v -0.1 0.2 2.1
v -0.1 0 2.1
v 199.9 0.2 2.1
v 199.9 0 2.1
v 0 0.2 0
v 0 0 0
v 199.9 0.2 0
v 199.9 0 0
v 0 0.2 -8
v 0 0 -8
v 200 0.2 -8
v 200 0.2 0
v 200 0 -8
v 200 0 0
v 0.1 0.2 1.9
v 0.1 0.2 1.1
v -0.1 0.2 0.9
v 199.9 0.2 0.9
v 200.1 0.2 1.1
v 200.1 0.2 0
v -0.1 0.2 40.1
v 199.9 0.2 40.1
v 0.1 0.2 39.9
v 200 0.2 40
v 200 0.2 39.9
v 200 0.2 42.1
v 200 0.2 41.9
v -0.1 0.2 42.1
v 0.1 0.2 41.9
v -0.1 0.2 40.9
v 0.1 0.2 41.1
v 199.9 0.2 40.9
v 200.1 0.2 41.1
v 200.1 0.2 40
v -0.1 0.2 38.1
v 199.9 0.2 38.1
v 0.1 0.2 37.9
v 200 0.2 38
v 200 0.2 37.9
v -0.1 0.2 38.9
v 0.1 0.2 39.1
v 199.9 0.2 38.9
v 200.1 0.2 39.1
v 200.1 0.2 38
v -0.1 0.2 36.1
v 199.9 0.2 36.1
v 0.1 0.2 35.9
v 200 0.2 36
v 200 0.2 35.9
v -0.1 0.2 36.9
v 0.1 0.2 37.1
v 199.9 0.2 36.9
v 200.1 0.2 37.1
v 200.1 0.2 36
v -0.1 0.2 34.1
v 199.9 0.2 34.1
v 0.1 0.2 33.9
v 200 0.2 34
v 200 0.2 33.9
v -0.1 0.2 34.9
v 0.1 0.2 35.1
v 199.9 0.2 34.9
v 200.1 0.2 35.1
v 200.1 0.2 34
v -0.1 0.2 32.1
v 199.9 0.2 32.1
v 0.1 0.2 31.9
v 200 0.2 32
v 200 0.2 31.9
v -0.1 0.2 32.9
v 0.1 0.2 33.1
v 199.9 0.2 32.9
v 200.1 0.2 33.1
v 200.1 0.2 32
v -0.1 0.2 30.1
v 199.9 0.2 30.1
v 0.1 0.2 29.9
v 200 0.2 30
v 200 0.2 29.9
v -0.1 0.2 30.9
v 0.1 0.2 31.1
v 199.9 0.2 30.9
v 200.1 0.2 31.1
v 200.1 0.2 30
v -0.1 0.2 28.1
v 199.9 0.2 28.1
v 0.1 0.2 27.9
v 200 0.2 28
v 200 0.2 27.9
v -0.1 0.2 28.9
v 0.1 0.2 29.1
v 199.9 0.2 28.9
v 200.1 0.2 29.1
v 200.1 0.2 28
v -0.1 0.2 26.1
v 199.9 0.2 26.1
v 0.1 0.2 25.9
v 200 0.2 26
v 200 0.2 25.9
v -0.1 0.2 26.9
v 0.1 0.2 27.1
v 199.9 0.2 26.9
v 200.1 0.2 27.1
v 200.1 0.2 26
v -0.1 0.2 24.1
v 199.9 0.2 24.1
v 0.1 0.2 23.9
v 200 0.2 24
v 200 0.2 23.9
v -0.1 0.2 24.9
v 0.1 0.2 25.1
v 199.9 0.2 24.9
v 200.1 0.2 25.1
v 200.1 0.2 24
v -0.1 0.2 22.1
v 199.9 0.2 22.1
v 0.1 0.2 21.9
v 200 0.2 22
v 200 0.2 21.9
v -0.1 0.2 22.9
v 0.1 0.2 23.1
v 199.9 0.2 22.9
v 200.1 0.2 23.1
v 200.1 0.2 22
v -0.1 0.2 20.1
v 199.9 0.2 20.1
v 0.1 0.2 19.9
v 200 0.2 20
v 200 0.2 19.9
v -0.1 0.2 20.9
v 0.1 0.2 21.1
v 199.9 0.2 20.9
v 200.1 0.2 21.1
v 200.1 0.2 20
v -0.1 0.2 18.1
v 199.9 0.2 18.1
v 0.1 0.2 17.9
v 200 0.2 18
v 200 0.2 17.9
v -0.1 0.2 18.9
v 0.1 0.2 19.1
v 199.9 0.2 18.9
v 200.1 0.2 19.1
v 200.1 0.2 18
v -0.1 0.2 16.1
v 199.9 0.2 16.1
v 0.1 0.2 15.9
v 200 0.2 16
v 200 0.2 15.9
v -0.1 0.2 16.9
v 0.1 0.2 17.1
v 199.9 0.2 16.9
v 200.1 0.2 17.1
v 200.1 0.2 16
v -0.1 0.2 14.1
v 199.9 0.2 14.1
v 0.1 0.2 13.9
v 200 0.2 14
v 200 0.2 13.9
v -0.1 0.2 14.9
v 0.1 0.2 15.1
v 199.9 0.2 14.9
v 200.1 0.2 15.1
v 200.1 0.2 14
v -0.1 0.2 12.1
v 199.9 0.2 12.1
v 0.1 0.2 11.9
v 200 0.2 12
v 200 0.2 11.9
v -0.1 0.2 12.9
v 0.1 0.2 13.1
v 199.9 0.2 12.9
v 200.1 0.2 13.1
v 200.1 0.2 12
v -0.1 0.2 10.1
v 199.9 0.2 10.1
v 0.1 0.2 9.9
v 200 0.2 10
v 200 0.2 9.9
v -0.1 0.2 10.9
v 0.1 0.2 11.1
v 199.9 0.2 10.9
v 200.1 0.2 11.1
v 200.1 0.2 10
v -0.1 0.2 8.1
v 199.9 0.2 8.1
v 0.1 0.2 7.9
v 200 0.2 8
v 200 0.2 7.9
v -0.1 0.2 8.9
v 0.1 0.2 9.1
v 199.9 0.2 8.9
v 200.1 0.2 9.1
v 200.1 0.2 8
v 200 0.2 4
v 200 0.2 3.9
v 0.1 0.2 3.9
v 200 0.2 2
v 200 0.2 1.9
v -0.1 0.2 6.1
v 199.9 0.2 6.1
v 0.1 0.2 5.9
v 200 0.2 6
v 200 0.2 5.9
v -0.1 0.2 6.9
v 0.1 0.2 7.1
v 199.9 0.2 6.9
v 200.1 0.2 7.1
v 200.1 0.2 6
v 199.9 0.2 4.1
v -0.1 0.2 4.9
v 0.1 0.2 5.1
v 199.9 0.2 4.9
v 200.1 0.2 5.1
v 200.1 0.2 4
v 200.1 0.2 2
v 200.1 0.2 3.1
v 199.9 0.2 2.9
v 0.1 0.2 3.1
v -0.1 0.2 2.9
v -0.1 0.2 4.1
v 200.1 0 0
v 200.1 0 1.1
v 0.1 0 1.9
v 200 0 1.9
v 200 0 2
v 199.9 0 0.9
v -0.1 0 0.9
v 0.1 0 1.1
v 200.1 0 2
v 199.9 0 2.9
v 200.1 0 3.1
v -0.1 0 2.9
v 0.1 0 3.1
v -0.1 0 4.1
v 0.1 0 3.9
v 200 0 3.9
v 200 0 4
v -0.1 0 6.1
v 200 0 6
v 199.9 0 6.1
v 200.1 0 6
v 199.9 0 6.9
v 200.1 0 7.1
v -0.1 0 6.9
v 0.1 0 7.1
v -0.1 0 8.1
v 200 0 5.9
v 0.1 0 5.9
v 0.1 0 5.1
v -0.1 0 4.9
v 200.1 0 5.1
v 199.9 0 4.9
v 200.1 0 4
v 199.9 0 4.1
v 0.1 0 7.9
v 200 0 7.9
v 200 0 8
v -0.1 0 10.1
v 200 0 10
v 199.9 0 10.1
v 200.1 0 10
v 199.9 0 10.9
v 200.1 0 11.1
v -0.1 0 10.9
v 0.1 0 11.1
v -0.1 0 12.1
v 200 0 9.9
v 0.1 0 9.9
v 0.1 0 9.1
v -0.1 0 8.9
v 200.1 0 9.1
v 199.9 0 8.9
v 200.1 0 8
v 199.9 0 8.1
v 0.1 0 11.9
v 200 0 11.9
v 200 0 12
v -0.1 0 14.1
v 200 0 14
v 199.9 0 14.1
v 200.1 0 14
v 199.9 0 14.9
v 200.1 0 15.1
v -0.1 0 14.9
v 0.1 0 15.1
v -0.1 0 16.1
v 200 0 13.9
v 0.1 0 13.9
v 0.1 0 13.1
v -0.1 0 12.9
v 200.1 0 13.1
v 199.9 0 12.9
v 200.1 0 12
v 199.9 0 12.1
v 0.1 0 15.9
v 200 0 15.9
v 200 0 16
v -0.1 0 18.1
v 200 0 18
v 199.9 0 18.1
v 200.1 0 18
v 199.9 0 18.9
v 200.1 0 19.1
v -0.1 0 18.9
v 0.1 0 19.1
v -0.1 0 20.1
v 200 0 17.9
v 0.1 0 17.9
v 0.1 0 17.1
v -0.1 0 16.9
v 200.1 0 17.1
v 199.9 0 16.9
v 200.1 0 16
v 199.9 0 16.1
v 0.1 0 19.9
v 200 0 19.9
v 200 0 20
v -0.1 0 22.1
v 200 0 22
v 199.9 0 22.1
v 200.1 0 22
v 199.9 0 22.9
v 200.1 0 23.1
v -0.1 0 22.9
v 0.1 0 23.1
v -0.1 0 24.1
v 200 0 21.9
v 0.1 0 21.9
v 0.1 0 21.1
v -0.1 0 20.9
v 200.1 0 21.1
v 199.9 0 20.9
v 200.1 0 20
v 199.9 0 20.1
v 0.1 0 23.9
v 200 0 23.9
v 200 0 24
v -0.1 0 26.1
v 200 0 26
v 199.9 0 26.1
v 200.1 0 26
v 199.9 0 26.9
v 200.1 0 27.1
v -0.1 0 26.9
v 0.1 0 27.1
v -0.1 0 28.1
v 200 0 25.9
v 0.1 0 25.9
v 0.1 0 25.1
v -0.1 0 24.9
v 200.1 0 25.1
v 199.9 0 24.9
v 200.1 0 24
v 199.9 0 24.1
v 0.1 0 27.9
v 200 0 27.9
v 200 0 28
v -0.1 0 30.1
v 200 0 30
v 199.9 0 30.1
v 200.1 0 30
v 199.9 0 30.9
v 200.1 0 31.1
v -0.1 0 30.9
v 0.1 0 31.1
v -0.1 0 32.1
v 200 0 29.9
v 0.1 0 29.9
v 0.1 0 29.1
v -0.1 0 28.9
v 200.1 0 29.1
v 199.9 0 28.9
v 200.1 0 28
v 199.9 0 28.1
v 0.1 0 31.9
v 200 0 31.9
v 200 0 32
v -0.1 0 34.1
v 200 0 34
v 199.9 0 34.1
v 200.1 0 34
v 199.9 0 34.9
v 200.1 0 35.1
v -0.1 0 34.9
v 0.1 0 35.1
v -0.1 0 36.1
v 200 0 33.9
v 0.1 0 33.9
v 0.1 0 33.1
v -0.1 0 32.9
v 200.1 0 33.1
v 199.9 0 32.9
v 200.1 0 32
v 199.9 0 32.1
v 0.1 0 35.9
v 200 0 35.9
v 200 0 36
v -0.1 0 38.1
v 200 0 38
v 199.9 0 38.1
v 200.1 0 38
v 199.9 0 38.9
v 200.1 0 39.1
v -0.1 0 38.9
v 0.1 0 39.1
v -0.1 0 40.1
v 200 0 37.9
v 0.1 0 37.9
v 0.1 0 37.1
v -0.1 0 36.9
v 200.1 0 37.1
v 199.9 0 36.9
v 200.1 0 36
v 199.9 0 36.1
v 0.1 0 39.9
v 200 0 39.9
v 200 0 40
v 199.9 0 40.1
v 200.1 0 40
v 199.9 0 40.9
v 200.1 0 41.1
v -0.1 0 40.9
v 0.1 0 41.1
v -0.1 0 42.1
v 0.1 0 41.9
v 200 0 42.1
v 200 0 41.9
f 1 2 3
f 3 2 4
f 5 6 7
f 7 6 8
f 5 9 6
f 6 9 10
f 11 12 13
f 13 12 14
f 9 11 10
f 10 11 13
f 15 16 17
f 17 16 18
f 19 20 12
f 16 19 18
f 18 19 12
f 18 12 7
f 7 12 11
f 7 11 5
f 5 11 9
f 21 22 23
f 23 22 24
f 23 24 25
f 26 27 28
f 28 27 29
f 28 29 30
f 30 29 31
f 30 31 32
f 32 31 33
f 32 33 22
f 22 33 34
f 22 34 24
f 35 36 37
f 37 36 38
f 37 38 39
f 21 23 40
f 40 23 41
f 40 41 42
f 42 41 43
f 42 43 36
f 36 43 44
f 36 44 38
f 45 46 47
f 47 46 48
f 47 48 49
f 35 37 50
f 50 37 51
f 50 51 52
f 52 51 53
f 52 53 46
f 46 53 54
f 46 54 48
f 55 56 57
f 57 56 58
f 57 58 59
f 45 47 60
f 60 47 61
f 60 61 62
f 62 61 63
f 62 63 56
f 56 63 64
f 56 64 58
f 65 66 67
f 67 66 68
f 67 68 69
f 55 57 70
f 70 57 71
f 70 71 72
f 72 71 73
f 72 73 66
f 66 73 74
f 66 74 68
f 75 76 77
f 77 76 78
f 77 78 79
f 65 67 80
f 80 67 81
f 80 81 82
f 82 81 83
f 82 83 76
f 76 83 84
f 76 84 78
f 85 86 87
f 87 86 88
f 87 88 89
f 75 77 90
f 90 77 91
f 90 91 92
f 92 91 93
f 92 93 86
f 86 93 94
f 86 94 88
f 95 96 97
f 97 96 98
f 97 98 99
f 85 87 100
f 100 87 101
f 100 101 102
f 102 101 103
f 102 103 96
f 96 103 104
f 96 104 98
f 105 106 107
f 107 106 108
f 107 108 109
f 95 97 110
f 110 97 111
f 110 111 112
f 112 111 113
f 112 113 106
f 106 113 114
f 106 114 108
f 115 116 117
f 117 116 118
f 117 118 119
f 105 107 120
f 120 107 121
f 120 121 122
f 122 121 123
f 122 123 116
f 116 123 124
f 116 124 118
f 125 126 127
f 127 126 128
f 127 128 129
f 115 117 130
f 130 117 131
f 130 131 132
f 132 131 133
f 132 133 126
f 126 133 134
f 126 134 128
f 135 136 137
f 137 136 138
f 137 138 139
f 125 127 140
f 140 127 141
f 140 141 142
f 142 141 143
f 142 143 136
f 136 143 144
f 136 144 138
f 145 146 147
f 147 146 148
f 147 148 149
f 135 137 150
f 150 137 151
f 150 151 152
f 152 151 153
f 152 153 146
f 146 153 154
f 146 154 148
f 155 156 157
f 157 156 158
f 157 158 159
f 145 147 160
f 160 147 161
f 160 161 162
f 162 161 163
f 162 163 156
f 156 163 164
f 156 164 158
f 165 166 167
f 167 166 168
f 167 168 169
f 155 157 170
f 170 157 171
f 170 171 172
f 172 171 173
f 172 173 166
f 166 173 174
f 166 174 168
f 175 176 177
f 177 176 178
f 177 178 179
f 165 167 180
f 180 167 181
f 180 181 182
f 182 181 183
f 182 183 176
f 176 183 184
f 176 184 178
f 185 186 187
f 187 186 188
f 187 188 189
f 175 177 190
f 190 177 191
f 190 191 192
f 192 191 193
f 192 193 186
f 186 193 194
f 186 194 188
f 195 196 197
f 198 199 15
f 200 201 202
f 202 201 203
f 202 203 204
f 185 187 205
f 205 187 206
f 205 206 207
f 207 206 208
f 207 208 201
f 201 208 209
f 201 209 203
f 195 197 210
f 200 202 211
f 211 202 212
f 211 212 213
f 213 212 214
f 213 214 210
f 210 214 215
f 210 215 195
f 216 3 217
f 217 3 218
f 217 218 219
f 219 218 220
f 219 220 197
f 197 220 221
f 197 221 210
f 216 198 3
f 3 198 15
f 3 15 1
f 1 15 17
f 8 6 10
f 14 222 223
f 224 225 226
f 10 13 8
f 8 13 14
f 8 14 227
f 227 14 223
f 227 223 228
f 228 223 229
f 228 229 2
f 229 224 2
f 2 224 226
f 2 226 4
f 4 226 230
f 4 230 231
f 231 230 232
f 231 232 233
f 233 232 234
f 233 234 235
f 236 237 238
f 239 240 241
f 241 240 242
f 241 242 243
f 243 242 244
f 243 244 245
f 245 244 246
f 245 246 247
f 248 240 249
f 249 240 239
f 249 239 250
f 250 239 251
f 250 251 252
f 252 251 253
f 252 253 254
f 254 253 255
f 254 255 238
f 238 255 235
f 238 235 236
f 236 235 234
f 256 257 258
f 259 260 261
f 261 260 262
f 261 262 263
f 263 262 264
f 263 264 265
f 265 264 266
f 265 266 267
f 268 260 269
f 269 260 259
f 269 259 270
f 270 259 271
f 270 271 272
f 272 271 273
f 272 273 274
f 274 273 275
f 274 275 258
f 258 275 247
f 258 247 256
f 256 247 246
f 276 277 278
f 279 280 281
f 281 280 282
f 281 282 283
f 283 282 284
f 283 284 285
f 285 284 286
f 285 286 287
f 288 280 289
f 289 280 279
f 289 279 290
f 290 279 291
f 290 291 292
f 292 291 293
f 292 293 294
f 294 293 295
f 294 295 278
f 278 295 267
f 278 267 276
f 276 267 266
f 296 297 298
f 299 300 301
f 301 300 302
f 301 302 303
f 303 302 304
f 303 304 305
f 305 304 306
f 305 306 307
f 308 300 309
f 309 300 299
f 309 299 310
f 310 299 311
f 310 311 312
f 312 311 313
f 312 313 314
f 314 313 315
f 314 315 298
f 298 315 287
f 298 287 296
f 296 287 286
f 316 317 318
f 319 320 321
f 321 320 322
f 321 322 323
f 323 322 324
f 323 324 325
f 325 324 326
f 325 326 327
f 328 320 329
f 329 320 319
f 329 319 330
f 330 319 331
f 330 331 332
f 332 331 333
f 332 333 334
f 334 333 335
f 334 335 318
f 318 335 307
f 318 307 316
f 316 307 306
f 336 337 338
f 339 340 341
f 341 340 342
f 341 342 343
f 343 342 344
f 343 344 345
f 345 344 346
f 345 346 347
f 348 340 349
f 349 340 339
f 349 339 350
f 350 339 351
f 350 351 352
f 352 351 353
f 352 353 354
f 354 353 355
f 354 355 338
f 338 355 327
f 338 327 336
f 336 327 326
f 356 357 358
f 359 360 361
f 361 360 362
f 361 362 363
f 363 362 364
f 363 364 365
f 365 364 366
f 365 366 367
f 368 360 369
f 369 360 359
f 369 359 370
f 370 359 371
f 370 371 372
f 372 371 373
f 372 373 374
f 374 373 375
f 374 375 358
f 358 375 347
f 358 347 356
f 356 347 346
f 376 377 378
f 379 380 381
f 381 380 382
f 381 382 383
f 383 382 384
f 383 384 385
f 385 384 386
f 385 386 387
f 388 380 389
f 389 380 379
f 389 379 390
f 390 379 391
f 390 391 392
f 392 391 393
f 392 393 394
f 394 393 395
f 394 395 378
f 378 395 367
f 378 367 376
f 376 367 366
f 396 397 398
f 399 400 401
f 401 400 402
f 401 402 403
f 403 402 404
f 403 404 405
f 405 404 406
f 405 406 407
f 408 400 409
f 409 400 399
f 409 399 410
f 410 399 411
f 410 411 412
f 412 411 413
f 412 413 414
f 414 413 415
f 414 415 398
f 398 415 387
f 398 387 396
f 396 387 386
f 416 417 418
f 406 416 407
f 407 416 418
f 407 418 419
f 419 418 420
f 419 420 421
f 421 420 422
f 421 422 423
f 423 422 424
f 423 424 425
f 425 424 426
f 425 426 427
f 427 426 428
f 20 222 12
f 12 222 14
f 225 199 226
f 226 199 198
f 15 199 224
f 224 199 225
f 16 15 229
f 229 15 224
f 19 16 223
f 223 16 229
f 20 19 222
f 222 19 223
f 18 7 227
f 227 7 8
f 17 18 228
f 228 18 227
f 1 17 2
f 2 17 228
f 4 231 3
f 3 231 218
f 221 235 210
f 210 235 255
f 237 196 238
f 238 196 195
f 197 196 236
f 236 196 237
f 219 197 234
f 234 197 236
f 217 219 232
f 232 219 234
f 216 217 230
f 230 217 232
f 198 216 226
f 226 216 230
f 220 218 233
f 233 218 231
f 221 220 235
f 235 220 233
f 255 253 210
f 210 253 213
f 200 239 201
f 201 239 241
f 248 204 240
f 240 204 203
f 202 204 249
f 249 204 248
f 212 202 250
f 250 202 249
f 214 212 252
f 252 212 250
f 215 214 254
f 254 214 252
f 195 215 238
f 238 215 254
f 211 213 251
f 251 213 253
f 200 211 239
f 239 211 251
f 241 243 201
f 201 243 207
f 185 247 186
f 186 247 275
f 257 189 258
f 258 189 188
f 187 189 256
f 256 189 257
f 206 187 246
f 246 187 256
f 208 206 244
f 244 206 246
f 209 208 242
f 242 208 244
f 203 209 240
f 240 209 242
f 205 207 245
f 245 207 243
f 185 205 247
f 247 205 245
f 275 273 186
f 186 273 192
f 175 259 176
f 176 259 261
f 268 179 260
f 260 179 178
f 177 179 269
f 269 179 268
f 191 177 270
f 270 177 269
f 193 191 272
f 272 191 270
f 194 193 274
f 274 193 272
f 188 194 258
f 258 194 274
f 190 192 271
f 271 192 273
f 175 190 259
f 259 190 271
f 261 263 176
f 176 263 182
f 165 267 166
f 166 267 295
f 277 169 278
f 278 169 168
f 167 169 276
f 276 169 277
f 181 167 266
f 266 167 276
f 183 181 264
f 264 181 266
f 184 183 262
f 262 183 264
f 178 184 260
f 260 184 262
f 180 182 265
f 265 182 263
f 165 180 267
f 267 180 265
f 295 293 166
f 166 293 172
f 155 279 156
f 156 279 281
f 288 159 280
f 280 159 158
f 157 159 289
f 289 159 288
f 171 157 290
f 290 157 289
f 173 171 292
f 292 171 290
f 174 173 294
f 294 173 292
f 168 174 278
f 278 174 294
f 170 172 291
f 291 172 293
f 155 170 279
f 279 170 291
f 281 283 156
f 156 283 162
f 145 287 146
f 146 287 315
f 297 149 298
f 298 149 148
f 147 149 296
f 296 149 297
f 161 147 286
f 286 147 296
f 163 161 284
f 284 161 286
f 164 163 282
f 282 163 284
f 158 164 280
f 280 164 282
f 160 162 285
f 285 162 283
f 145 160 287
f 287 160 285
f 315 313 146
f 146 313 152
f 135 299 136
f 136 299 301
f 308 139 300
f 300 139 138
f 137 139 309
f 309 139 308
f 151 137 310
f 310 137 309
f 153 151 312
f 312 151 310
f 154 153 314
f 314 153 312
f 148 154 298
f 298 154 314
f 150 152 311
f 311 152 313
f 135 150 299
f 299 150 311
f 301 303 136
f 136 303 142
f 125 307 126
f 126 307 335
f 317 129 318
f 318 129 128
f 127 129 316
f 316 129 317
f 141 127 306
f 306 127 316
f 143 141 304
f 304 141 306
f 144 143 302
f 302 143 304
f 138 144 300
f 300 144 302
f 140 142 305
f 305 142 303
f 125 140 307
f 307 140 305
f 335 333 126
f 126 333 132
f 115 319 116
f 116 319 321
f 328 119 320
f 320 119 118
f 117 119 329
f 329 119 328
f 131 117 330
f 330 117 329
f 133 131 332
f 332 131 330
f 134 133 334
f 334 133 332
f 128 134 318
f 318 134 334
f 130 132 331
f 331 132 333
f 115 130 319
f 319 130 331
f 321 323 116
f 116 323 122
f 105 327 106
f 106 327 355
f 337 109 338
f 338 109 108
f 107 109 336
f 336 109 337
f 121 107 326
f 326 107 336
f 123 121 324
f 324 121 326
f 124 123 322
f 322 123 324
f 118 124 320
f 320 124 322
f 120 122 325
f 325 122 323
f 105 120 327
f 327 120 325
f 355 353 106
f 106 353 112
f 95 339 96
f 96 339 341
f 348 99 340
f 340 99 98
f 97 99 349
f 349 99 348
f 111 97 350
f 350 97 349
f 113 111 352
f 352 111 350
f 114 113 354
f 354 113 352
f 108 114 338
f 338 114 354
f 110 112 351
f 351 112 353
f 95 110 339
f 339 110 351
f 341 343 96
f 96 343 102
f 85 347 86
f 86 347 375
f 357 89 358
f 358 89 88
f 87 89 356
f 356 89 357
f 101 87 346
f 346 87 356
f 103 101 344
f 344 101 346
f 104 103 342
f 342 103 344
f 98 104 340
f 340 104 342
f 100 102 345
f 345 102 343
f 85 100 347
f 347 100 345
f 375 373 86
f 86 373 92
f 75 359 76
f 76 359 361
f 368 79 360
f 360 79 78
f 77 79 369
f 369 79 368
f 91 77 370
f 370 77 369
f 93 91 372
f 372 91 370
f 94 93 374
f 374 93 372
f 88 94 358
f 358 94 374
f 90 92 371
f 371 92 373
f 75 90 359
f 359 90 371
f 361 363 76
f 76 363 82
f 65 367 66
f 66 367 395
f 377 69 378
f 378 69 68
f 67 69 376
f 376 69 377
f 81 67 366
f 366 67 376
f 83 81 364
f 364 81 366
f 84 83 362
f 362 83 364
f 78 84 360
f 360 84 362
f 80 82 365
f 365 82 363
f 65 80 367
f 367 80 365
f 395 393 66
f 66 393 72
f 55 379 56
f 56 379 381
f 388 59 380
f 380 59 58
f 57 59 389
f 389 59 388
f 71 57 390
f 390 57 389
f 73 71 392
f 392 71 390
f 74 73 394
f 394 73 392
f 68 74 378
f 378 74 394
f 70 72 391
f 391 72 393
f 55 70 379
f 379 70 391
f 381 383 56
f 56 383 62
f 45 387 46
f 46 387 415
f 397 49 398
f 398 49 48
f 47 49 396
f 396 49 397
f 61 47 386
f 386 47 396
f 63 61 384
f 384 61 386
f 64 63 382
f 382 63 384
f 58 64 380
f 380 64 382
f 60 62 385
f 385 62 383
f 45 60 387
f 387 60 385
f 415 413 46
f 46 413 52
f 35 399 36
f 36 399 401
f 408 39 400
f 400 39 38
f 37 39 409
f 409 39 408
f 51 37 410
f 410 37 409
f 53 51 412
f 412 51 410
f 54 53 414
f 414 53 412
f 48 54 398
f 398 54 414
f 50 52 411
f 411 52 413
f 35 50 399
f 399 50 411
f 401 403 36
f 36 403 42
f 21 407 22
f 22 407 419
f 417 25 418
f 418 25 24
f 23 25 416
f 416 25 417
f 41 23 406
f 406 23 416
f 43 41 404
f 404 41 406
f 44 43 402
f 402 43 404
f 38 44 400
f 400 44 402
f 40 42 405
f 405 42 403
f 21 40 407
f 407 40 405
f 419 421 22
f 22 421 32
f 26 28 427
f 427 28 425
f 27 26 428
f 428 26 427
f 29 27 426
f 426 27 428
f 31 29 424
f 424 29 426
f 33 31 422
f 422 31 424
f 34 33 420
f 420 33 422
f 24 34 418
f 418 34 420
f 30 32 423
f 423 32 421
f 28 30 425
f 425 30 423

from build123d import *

# Parameters (mm, degrees)
SKETCH1_W           = 200
SKETCH1_H           = 8
BOSS_EXTRUDE1_DEPTH = 0.2
EXTRUDE_THIN1_DEPTH = 0.2
LPATTERN1_COUNT     = 21
LPATTERN1_PITCH     = 2


with BuildPart() as part:
    # Sketch1 → Boss-Extrude1 (new body)
    with BuildSketch(Plane(origin=(0, 0, 0), x_dir=(1, 0, 0), z_dir=(0, 1, 0))):
        with Locations((100, 4)):
            Rectangle(SKETCH1_W, SKETCH1_H)
    extrude(amount=BOSS_EXTRUDE1_DEPTH)

    # Sketch2 → Extrude-Thin1 (add)
    with BuildSketch(Plane(origin=(0, 0, 0), x_dir=(1, 0, 0), z_dir=(0, 1, 0))):
        Polygon((199.9, 0), (199.9, -0.9), (-0.1, -0.9), (-0.1, -2.1), (200, -2.1), (200, -1.9), (0.1, -1.9), (0.1, -1.1), (200.1, -1.1), (200.1, 0), align=None)
    extrude_thin1 = extrude(amount=EXTRUDE_THIN1_DEPTH)

    # LPattern1: Extrude-Thin1 ×21
    with Locations(*[(0, 0, i * LPATTERN1_PITCH) for i in range(1, LPATTERN1_COUNT)]):
        add(extrude_thin1)


solid = part.part
